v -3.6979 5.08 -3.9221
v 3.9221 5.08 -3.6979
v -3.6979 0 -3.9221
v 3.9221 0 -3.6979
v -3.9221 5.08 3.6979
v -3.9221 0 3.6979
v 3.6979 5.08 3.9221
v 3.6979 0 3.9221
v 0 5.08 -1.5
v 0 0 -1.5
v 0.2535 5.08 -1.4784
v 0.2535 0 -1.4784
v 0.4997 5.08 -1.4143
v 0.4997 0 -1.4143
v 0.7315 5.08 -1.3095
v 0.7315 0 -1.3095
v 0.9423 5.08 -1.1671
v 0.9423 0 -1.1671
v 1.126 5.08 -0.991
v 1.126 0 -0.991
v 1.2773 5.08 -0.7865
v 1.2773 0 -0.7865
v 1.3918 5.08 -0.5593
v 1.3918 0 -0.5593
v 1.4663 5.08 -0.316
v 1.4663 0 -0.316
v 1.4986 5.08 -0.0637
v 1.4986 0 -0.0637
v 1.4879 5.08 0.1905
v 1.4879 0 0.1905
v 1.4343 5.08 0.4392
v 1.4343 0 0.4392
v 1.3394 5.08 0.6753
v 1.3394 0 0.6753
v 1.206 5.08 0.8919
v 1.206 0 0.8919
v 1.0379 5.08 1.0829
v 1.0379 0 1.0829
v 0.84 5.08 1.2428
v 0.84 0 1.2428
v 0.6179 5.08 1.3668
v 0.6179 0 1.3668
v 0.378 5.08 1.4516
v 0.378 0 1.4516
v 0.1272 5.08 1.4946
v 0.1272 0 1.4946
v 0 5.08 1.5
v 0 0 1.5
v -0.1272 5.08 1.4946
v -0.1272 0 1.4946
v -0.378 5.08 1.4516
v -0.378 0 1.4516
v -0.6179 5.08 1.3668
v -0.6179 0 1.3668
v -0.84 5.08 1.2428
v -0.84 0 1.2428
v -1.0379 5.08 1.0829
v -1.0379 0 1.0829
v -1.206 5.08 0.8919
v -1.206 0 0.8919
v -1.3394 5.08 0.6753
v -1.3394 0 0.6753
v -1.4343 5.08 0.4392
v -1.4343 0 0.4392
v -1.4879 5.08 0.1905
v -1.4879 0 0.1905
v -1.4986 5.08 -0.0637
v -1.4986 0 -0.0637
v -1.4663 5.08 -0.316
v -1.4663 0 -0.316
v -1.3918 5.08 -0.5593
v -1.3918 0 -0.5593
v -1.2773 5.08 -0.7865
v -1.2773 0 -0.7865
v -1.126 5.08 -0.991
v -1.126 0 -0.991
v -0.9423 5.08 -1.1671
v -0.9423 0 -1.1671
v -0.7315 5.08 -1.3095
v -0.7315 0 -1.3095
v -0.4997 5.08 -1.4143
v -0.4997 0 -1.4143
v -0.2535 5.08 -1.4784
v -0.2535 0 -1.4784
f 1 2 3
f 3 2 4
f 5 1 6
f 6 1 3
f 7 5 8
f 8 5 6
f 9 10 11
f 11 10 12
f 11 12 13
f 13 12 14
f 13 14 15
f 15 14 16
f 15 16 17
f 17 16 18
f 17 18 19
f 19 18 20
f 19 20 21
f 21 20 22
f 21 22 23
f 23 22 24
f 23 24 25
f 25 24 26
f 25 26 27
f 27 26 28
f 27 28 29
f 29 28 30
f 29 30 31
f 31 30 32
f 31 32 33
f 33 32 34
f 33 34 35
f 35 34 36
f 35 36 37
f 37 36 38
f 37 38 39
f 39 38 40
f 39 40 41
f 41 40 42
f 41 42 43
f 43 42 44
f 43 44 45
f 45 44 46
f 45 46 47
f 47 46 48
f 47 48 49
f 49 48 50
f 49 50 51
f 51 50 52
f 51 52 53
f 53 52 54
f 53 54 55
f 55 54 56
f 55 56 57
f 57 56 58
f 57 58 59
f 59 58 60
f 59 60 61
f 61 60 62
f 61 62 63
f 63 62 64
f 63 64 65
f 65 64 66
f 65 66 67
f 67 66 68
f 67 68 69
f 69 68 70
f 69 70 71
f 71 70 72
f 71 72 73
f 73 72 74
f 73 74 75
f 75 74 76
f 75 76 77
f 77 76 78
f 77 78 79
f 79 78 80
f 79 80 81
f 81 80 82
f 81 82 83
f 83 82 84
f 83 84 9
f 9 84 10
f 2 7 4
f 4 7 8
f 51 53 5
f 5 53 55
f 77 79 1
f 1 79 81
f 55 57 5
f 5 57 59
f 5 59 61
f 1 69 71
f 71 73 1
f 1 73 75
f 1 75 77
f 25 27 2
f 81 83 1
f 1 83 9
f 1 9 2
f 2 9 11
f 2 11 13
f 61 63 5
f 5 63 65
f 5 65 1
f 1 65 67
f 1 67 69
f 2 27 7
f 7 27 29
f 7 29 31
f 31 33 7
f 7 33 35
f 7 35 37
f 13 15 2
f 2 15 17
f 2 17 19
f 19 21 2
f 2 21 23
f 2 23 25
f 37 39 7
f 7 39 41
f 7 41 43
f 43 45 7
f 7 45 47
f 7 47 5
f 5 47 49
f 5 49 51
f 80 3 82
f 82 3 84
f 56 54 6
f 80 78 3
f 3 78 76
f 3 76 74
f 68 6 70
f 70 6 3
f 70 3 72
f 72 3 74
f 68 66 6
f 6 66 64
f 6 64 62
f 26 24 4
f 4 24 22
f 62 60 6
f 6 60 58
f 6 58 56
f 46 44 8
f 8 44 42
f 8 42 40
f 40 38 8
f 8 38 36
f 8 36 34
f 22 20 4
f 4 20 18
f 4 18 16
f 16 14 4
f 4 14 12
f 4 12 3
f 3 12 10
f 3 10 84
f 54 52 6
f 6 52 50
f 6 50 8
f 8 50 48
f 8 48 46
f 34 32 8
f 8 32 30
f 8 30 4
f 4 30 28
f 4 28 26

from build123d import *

# Parameters (mm, degrees)
SKETCH1_R           = 1.5
BOSS_EXTRUDE1_DEPTH = 5.08


with BuildPart() as part:
    # Sketch1 → Boss-Extrude1 (new body)
    with BuildSketch(Plane(origin=(0, 0, 0), x_dir=(1, 0, 0), z_dir=(0, 1, 0))):
        Polygon((-3.922137091, -3.697862909), (3.697862909, -3.922137091), (3.922137091, 3.697862909), (-3.697862909, 3.922137091), align=None)
        Circle(SKETCH1_R, mode=Mode.SUBTRACT)
    extrude(amount=BOSS_EXTRUDE1_DEPTH)


solid = part.part
